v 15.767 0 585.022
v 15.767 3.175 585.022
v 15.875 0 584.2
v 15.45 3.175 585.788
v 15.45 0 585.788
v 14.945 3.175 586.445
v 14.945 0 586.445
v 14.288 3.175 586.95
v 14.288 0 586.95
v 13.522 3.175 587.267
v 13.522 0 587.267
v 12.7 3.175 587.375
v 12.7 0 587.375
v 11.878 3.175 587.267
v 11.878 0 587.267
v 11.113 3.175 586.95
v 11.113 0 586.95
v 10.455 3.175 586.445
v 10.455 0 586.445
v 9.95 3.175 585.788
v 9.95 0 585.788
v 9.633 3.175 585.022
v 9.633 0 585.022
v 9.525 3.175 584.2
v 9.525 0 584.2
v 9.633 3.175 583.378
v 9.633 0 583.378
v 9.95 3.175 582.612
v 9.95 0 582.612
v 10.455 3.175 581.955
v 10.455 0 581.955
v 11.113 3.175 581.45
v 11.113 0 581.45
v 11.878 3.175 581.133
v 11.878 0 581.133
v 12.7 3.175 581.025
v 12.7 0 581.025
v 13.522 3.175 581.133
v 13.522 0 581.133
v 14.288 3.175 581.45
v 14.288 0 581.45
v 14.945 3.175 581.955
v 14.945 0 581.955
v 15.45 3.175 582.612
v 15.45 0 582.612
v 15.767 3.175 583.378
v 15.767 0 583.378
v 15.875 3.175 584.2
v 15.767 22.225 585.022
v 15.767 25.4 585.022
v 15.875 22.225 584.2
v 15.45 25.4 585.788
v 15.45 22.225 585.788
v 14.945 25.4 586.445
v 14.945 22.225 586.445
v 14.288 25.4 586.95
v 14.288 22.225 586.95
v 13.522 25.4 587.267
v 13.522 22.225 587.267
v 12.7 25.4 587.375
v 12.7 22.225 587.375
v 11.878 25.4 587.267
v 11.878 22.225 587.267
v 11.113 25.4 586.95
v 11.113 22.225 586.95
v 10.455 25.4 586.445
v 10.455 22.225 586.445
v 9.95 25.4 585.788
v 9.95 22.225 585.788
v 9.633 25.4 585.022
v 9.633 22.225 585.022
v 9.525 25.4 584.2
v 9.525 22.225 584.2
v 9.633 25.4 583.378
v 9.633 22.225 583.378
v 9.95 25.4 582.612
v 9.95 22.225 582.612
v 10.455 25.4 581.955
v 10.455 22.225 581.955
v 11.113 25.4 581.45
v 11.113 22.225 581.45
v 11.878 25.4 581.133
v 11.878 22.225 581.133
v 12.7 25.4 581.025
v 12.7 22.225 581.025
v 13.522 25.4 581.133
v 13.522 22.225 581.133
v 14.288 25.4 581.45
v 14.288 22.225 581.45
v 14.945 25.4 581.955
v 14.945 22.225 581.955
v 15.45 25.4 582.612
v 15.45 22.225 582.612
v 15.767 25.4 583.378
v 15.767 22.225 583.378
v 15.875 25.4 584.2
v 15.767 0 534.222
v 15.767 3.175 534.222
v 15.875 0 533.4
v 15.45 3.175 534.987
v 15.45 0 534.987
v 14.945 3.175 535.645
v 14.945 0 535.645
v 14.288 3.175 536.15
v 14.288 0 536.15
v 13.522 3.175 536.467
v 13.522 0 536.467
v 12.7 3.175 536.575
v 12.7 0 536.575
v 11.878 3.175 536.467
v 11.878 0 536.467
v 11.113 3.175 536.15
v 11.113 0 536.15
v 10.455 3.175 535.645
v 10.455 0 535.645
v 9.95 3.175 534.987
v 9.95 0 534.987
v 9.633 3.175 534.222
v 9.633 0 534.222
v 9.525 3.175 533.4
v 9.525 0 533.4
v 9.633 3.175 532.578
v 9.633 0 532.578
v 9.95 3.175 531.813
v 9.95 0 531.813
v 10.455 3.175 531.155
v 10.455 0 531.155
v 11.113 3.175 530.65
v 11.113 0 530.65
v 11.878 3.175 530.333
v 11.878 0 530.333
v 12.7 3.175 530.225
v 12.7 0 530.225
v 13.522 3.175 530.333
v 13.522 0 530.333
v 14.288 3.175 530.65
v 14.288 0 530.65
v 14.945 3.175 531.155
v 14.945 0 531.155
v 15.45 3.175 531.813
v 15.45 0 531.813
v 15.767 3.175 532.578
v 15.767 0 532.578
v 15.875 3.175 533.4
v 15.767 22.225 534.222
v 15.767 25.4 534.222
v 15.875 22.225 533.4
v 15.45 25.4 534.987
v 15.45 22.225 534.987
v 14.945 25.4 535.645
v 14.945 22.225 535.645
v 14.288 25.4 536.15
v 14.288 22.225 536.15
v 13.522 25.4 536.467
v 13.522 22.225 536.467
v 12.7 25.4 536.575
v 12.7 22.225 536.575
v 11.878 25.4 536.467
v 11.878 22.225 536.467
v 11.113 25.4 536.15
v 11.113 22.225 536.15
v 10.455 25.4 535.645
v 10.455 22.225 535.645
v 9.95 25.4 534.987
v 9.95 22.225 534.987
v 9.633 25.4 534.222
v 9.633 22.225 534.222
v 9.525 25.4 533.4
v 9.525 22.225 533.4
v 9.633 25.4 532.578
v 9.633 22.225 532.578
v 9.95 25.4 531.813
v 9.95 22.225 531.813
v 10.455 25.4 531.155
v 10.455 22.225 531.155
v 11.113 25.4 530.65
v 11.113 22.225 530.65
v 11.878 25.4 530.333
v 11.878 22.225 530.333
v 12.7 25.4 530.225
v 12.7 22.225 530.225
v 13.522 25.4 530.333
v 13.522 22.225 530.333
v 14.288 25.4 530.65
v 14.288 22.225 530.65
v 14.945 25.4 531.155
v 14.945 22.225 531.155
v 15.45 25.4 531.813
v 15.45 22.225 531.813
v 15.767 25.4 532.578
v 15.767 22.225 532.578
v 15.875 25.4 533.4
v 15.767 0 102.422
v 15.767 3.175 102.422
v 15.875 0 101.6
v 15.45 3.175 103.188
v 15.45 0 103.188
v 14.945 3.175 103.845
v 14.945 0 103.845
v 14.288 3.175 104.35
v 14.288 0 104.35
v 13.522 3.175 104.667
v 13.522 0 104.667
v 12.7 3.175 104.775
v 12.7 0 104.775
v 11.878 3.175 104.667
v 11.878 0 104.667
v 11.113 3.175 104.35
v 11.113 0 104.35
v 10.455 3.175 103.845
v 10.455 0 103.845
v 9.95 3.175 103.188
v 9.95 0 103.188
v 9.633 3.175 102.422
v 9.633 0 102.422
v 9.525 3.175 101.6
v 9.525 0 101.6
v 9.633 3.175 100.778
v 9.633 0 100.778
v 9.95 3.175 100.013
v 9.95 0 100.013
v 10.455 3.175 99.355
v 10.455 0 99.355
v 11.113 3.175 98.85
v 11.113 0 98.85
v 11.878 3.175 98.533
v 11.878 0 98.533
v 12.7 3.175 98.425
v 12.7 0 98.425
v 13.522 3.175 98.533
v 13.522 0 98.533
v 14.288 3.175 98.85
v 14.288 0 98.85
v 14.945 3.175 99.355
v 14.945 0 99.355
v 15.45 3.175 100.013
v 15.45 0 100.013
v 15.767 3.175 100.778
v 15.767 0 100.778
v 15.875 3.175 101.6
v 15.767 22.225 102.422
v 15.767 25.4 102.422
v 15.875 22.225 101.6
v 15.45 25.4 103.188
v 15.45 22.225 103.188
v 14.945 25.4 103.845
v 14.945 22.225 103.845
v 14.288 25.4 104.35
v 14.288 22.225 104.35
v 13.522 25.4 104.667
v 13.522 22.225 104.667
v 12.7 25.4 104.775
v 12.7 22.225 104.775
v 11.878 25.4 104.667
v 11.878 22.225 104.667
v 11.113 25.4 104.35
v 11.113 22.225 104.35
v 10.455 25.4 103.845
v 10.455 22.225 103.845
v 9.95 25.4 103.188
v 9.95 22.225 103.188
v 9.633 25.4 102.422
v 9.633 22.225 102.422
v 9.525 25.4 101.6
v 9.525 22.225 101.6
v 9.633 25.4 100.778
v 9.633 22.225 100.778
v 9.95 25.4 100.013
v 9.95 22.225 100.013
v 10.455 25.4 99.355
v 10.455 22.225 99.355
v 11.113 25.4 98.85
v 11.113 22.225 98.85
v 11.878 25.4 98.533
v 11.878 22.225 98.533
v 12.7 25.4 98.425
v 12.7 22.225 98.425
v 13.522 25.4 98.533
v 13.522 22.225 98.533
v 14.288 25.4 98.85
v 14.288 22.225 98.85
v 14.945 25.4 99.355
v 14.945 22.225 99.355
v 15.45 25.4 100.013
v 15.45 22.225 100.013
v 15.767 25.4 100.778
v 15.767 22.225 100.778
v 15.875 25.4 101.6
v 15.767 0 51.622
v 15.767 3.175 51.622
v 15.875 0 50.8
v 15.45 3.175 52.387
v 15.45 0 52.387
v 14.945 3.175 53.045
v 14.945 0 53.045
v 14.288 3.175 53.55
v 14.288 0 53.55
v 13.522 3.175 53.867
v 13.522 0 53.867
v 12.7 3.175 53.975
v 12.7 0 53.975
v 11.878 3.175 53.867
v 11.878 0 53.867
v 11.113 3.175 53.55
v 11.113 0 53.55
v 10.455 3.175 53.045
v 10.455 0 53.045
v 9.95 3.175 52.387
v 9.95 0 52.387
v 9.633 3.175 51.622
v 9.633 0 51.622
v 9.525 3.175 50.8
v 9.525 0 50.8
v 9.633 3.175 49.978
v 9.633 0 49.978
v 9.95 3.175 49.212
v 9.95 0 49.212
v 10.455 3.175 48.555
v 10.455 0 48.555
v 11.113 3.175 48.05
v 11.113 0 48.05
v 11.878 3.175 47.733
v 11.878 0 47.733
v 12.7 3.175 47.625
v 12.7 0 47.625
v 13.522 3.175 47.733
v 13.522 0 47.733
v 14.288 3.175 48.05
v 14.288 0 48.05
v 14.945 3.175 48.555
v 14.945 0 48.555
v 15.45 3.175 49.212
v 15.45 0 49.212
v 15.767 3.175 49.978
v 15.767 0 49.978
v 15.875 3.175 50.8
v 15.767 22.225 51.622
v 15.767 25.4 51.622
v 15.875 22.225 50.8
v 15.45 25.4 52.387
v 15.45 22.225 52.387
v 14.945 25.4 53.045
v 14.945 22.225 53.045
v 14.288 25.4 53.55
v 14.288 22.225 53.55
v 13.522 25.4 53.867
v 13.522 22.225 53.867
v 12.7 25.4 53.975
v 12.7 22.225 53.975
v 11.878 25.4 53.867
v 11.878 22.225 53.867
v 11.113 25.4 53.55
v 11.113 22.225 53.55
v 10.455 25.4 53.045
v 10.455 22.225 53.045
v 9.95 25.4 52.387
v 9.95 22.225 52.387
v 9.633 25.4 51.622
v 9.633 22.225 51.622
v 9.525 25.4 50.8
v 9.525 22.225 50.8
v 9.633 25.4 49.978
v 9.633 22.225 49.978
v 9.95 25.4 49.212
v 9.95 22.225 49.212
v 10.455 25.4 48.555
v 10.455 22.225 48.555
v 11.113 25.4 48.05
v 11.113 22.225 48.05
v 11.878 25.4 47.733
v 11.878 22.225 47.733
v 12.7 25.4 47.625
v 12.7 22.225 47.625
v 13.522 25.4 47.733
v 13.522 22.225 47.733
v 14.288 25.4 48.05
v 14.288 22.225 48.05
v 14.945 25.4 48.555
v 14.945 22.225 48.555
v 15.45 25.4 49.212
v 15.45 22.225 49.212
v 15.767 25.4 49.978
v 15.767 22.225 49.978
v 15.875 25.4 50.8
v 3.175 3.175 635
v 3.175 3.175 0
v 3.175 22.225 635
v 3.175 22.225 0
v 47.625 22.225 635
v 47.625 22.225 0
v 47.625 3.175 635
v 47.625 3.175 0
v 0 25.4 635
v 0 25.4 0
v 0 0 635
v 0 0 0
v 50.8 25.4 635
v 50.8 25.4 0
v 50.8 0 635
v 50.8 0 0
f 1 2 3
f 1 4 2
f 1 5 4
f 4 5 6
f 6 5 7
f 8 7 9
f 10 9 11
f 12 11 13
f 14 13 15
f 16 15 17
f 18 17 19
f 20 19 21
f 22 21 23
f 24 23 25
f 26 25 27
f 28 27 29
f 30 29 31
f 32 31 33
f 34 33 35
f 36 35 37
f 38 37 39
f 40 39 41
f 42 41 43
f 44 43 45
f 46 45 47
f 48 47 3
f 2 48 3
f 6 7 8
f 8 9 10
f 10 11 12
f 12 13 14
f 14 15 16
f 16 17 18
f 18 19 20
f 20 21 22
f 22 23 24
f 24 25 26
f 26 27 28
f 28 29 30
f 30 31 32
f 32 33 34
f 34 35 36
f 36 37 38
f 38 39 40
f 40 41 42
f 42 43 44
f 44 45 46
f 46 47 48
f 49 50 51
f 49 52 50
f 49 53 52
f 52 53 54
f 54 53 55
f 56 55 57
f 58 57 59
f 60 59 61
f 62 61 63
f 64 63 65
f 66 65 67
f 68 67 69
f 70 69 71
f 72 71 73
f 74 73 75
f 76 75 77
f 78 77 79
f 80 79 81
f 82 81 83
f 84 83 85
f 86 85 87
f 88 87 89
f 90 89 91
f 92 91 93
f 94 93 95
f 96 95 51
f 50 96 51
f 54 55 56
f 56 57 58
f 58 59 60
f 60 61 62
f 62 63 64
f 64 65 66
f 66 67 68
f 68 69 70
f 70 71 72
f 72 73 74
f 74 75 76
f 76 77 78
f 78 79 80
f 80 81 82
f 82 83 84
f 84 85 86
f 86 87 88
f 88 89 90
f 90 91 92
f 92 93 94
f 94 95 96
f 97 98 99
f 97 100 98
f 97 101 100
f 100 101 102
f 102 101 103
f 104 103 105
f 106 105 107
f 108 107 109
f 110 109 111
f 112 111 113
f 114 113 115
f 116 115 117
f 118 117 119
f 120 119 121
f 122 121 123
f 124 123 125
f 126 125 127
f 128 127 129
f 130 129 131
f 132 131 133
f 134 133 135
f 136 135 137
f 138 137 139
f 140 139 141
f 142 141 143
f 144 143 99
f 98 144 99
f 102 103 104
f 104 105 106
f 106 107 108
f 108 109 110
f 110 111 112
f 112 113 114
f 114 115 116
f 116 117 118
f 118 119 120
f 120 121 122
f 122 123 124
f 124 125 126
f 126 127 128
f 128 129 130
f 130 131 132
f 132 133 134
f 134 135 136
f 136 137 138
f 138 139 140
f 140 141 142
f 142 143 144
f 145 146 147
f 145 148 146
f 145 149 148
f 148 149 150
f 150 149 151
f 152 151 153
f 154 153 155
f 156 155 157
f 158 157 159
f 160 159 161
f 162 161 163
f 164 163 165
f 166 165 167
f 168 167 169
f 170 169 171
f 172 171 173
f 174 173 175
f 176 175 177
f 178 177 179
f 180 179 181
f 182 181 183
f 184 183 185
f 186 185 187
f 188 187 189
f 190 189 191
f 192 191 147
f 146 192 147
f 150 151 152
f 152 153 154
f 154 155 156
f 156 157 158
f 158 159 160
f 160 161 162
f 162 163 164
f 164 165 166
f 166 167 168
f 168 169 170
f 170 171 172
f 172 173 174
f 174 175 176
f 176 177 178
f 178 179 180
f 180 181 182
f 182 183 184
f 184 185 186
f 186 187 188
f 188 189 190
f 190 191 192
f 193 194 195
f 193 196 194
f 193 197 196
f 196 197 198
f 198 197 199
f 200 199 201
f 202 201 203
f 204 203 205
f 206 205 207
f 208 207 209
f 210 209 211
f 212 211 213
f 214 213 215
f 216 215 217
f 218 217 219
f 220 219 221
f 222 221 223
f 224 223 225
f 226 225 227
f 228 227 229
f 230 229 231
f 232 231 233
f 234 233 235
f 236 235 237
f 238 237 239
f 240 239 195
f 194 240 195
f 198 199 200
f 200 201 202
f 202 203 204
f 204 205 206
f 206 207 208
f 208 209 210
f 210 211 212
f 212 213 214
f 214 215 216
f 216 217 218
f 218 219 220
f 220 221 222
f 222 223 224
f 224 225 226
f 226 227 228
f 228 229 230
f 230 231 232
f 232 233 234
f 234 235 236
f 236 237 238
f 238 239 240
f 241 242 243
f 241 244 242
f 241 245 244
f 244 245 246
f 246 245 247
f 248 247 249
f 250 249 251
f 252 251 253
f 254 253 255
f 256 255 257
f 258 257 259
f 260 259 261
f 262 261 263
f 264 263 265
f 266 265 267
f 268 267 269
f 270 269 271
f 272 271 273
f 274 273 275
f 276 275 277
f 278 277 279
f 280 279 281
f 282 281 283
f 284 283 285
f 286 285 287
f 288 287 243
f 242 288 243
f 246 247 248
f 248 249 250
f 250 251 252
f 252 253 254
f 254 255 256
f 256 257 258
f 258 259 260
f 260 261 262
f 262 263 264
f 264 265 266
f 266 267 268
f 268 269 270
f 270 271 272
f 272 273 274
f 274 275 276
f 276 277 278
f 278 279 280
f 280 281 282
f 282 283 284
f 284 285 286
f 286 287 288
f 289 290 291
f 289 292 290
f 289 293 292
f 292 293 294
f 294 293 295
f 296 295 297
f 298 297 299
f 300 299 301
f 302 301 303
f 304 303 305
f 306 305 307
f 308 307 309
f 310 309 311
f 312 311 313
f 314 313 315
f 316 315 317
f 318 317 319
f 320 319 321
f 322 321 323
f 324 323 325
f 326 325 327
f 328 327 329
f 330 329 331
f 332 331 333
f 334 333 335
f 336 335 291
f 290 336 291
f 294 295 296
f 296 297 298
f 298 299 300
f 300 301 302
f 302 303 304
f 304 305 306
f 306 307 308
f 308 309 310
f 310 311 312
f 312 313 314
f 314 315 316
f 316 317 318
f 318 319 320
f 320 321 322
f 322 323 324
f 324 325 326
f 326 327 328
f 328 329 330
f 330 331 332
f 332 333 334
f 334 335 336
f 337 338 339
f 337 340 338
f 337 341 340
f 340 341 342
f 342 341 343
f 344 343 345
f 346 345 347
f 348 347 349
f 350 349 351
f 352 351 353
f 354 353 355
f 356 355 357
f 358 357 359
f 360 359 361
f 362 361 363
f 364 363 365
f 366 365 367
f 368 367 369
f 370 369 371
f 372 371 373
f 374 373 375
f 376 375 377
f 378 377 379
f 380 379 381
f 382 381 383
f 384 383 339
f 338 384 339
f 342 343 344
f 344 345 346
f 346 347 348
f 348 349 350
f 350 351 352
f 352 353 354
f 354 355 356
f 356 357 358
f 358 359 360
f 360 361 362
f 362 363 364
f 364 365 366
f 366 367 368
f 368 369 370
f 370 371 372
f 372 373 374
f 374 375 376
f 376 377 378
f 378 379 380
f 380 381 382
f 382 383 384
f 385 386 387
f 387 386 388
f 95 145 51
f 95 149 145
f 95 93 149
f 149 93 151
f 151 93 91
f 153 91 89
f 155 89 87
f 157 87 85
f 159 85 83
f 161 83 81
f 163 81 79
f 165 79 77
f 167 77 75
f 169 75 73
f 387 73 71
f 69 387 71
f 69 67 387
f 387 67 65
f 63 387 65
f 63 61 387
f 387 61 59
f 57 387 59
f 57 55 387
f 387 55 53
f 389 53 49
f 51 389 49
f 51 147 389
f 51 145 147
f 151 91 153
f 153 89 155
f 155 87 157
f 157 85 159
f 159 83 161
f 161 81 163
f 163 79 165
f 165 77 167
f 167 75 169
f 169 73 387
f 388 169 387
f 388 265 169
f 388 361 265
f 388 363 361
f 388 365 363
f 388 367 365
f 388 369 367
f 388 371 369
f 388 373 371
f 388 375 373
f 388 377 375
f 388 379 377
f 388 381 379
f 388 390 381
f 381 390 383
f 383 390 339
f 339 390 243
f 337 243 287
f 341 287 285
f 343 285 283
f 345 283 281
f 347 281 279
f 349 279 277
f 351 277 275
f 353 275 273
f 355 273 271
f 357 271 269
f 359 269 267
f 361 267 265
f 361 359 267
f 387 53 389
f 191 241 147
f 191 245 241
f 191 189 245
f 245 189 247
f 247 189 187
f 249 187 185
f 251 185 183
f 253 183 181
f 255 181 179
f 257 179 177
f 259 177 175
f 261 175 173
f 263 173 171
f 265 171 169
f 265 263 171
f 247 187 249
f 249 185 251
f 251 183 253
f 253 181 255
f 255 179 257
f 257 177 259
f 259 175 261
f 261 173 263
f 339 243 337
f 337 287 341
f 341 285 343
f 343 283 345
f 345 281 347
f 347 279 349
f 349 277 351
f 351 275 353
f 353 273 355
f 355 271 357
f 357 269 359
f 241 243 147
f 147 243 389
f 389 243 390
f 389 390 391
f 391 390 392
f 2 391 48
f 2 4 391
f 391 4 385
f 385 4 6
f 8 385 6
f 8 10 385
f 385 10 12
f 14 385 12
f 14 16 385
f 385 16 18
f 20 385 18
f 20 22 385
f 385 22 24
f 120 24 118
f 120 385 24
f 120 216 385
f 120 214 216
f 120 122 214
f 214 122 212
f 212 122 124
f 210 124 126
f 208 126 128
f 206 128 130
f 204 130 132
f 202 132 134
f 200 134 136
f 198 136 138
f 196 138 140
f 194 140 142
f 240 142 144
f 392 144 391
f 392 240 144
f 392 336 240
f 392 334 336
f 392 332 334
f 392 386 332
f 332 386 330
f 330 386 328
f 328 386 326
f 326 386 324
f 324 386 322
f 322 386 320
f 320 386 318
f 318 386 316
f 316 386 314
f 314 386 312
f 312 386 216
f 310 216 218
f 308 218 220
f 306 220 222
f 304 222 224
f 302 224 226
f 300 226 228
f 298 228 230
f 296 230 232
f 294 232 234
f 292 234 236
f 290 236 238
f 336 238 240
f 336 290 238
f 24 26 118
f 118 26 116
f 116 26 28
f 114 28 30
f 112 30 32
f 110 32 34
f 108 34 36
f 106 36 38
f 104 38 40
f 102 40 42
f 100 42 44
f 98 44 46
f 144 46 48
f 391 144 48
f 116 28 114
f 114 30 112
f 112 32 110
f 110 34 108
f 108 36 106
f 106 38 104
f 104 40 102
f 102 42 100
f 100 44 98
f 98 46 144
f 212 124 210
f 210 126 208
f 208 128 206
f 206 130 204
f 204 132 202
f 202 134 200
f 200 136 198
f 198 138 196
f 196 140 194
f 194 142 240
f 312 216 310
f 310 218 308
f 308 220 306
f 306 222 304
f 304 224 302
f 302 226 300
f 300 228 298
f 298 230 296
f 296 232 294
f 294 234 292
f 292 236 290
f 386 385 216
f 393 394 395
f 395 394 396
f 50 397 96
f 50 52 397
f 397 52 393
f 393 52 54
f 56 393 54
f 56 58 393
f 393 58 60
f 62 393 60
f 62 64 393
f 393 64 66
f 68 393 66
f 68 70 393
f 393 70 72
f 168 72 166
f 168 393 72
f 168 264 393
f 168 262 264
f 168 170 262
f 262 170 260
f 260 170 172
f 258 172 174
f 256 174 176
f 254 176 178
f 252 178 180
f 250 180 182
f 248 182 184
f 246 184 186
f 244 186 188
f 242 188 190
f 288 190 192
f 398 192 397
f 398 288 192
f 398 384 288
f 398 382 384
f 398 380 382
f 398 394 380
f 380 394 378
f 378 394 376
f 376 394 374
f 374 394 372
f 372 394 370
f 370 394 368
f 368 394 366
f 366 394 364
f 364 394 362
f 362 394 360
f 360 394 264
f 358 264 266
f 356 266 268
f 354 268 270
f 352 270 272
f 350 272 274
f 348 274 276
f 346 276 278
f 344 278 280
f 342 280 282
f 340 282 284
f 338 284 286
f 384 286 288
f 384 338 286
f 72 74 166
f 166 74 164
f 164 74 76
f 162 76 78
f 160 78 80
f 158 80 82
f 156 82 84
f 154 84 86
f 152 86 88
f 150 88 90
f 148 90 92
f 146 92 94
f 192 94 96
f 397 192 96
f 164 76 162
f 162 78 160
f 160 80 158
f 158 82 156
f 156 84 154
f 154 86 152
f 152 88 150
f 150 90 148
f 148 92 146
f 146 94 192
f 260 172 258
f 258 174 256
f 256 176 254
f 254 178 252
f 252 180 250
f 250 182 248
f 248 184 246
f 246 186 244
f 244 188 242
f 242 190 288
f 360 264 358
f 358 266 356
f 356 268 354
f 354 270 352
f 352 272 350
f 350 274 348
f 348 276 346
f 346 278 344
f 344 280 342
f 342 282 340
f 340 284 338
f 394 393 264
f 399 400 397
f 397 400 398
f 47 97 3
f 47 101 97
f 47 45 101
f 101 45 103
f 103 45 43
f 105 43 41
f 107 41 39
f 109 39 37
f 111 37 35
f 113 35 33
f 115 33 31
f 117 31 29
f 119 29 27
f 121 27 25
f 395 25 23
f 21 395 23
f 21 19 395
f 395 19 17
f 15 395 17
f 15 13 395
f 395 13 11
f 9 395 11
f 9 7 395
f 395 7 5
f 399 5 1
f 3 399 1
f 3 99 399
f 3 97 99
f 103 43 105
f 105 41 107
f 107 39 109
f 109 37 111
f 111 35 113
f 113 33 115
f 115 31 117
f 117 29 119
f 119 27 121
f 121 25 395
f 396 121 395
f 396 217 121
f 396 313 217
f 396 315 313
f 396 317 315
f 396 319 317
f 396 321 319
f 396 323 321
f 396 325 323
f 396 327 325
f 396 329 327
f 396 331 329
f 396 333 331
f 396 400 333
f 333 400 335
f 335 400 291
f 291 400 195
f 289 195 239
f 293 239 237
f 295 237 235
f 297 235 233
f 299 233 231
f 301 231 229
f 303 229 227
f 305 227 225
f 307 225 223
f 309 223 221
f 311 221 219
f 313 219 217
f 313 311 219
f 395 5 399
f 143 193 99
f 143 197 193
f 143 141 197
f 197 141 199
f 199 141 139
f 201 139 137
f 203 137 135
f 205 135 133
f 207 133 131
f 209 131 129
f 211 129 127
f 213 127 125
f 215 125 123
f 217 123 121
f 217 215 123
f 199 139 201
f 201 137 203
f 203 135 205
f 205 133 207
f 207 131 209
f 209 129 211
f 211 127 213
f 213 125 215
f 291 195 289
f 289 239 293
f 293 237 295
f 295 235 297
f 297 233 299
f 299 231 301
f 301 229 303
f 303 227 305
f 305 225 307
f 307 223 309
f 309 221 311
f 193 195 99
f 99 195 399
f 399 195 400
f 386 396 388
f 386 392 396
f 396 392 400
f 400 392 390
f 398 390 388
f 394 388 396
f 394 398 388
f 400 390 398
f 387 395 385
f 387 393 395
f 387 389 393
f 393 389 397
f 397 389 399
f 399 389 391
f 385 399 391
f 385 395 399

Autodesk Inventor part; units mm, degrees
ref_plane "YZ Plane" through (0, 0, 0) normal (1, 0, 0) x (0, 1, 0)
ref_plane "XZ Plane" through (0, 0, 0) normal (0, 1, 0) x (-1, 0, 0)
ref_plane "XY Plane" through (0, 0, 0) normal (0, 0, 1) x (1, 0, 0)
sketch "Sketch1" plane through (0, 0, 0) normal (0, 0, 1) x (1, 0, 0)
  line L0 (0, 0) -> (50.8, 0)
  line L1 (50.8, 0) -> (50.8, 25.4)
  line L2 (50.8, 25.4) -> (0, 25.4)
  line L3 (0, 25.4) -> (0, 0)
  dimension "d0" = 25.4
  dimension "d1" = 50.8
extrude "Extrusion1" add sketch "Sketch1" along normal blind 635
shell "Shell1" thickness 3.175 removed faces 2 at (16.9333, 16.9333, 0) at (33.8667, 8.4667, 635)
sketch "Sketch2" plane through (0, 25.4, 0) normal (0, 1, 0) x (1, 0, 0)
  line L0 (0, -635) -> (50.8, -635) projected
  line L1 (50.8, 0) -> (0, 0) projected
  line L2 (0, 0) -> (0, -635) projected
  line L3 (12.7, 0) -> (12.7, -50.8) construction
  line L4 (12.7, -50.8) -> (12.7, -101.6) construction
  line L5 (12.7, -101.6) -> (12.7, -533.4) construction
  line L6 (12.7, -533.4) -> (12.7, -584.2) construction
  line L7 (12.7, -584.2) -> (12.7, -635) construction
  circle A0 centre (12.7, -50.8) radius 3.175
  circle A1 centre (12.7, -101.6) radius 3.175
  circle A2 centre (12.7, -533.4) radius 3.175
  circle A3 centre (12.7, -584.2) radius 3.175
  dimension "d4" = 12.7
  dimension "d5" = 50.8
  dimension "d6" = 50.8
  dimension "d7" = 6.35
  dimension "d8" = 6.35
  dimension "d9" = 6.35
  dimension "d10" = 6.35
extrude "Extrusion2" cut sketch "Sketch2" against normal through all
properties part number "Frame_SideRail_Inner_2x1" material "Aluminum-6061"
